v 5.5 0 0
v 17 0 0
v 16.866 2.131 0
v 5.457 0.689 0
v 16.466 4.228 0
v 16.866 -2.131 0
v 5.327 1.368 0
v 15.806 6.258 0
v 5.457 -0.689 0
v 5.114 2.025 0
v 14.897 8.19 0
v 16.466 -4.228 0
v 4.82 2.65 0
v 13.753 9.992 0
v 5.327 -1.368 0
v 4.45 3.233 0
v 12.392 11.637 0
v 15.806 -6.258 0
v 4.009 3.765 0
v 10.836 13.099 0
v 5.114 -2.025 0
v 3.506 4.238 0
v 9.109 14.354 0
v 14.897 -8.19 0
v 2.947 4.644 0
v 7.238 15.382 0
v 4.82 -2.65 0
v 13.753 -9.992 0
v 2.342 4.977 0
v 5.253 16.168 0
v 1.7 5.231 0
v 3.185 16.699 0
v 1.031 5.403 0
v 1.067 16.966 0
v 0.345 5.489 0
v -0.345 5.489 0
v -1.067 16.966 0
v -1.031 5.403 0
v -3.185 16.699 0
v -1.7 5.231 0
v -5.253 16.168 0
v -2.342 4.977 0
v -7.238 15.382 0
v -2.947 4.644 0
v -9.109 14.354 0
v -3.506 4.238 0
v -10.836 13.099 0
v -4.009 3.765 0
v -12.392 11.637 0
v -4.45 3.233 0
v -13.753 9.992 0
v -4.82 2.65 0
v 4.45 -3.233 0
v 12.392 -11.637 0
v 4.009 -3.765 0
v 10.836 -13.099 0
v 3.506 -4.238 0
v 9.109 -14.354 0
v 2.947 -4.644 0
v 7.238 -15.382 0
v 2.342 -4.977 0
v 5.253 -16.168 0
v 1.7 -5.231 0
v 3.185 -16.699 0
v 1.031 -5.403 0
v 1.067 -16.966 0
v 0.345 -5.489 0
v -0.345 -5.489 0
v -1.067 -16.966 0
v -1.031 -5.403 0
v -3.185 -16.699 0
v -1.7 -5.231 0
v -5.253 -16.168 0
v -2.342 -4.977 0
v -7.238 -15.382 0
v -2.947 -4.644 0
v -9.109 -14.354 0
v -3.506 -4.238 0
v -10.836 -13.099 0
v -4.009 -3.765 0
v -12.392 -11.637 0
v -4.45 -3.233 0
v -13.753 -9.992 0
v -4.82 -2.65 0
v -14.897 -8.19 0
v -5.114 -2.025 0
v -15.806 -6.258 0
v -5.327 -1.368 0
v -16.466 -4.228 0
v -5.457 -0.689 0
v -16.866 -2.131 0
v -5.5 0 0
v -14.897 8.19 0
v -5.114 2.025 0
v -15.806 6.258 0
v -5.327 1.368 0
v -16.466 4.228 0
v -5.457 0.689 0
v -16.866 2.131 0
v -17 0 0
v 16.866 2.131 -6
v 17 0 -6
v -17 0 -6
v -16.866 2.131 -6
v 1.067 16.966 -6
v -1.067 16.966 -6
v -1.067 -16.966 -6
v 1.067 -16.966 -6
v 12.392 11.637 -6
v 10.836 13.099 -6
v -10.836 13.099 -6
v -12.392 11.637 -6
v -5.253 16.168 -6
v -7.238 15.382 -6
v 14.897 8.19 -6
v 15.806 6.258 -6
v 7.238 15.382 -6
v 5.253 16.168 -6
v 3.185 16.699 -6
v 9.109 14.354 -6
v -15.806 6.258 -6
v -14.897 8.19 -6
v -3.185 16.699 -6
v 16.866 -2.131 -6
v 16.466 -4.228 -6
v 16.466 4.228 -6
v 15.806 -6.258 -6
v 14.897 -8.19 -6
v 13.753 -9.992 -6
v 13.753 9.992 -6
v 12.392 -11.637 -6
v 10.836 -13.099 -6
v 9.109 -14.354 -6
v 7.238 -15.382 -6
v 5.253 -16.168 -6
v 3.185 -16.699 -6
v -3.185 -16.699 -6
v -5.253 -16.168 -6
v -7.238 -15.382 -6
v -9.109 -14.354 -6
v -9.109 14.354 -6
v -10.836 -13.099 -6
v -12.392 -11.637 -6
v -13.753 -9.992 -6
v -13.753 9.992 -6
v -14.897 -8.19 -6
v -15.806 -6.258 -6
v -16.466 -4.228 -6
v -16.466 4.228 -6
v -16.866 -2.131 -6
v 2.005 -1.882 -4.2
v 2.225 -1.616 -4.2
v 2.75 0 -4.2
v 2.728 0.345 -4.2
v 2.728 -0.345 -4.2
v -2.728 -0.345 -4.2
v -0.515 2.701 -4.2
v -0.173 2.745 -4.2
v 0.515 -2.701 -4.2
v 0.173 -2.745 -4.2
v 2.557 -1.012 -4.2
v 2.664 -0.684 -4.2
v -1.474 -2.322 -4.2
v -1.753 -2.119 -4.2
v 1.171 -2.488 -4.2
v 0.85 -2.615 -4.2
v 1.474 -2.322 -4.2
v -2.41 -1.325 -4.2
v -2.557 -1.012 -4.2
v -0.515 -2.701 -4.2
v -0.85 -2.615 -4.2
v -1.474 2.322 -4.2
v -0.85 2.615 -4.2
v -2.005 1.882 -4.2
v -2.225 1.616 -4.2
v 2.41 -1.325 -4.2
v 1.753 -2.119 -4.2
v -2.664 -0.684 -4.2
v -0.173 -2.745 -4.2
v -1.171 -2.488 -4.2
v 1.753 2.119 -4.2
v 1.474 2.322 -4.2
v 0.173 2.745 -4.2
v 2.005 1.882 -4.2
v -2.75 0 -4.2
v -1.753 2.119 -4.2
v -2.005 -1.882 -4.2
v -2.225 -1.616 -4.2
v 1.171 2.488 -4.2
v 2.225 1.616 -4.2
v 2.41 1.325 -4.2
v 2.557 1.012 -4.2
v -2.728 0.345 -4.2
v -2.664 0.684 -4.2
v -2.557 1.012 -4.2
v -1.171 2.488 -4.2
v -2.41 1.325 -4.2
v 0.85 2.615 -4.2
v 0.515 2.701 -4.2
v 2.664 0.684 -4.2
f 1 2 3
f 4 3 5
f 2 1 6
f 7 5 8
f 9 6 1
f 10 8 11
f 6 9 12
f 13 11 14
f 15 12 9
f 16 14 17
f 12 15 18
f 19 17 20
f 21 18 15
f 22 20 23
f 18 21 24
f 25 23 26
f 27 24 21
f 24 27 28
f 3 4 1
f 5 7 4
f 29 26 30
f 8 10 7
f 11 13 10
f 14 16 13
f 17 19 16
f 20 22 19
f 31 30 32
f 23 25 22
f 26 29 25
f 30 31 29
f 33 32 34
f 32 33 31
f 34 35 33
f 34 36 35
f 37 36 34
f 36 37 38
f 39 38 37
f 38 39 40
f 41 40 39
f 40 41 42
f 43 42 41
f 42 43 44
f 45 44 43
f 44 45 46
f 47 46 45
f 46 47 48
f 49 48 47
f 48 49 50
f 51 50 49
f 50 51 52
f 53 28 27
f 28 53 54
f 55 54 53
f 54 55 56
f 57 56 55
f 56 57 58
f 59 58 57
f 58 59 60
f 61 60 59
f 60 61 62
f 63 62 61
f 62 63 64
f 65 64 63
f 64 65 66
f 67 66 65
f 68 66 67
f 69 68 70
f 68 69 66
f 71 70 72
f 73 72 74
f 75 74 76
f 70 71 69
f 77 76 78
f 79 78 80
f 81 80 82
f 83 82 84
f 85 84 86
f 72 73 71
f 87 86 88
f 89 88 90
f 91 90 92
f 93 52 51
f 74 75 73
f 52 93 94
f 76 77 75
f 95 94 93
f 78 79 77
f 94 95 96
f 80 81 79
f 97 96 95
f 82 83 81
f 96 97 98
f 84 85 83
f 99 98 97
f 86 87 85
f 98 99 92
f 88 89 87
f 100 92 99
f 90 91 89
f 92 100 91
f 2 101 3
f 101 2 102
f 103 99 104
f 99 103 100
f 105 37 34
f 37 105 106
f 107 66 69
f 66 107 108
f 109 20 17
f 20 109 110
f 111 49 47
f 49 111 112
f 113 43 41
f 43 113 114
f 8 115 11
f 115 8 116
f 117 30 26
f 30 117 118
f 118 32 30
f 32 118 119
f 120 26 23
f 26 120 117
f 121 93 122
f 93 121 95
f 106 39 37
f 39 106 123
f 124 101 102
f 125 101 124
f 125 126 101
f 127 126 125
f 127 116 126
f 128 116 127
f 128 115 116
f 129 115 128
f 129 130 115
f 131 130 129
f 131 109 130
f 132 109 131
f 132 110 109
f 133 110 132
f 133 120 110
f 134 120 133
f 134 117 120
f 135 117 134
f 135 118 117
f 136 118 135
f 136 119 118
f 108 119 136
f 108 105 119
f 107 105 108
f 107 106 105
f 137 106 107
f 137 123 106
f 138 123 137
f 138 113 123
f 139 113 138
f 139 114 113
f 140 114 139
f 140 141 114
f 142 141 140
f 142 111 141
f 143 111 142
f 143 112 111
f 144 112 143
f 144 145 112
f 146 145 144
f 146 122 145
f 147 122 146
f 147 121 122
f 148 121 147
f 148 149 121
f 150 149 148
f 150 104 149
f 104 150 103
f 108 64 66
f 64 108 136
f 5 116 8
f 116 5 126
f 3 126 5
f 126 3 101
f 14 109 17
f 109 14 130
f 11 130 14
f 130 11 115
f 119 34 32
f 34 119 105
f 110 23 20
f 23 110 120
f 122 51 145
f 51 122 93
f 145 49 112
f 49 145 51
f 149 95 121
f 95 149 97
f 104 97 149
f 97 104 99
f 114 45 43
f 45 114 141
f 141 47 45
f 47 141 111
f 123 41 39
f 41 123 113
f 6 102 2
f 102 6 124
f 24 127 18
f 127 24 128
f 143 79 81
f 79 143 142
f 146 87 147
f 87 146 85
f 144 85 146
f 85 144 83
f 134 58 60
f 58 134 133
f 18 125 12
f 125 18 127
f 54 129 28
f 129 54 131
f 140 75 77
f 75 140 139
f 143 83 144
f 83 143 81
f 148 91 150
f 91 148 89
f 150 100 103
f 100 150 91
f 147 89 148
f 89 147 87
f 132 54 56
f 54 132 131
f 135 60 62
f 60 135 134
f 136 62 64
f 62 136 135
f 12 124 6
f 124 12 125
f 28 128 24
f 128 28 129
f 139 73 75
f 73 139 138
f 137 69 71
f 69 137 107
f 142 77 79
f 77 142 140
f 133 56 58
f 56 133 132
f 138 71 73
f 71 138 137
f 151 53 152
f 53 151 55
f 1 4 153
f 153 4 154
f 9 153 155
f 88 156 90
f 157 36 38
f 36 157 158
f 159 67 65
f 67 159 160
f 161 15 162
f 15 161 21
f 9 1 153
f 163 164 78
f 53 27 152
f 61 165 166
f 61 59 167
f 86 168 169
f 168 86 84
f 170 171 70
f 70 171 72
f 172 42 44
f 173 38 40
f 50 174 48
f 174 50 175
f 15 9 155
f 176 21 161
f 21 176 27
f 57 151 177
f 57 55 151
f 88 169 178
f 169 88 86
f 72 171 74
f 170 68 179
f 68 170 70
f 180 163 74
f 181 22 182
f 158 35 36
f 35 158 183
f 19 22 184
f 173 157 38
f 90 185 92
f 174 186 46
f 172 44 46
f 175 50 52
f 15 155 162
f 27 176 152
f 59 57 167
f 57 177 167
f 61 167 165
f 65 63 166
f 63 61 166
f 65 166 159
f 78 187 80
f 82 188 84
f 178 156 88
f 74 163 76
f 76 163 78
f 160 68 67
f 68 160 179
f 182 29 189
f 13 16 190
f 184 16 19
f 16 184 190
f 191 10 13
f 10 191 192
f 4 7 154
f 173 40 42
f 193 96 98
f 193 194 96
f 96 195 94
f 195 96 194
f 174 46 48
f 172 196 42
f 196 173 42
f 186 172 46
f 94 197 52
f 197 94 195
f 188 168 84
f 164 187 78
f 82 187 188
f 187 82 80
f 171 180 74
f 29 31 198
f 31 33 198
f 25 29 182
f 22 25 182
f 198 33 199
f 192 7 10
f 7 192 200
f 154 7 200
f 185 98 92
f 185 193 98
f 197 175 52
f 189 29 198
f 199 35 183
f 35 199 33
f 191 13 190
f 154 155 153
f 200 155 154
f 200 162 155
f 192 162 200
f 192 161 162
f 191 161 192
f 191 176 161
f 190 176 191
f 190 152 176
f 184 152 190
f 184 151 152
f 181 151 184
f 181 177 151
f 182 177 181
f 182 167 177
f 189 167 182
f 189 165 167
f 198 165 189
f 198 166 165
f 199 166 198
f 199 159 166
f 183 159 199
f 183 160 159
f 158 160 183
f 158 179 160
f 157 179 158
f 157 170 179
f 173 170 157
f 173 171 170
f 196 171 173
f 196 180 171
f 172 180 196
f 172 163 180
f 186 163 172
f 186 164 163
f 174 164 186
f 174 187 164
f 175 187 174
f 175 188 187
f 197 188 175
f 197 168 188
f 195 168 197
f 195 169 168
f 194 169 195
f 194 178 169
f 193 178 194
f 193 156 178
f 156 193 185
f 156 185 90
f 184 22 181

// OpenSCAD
$fn = 50;


difference() {
	union() {
		translate(v = [0, 0, -3.0000000000]) {
			cylinder(h = 3, r = 7.0000000000);
		}
		translate(v = [0, 0, -6.0000000000]) {
			cylinder(h = 6, r = 17.0000000000);
		}
	}
	union() {
		translate(v = [0, 0, 0]) {
			rotate(a = [0, 0, 0]) {
				difference() {
					union() {
						#translate(v = [0, 0, -3.0000000000]) {
							cylinder(h = 3, r = 2.2500000000);
						}
						#translate(v = [0, 0, -4.2000000000]) {
							cylinder(h = 4.2000000000, r1 = 2.7500000000, r2 = 5.5000000000);
						}
						#translate(v = [0, 0, -3.0000000000]) {
							cylinder(h = 3, r = 2.7500000000);
						}
						#translate(v = [0, 0, -3.0000000000]) {
							cylinder(h = 3, r = 2.2500000000);
						}
					}
					union();
				}
			}
		}
	}
}
